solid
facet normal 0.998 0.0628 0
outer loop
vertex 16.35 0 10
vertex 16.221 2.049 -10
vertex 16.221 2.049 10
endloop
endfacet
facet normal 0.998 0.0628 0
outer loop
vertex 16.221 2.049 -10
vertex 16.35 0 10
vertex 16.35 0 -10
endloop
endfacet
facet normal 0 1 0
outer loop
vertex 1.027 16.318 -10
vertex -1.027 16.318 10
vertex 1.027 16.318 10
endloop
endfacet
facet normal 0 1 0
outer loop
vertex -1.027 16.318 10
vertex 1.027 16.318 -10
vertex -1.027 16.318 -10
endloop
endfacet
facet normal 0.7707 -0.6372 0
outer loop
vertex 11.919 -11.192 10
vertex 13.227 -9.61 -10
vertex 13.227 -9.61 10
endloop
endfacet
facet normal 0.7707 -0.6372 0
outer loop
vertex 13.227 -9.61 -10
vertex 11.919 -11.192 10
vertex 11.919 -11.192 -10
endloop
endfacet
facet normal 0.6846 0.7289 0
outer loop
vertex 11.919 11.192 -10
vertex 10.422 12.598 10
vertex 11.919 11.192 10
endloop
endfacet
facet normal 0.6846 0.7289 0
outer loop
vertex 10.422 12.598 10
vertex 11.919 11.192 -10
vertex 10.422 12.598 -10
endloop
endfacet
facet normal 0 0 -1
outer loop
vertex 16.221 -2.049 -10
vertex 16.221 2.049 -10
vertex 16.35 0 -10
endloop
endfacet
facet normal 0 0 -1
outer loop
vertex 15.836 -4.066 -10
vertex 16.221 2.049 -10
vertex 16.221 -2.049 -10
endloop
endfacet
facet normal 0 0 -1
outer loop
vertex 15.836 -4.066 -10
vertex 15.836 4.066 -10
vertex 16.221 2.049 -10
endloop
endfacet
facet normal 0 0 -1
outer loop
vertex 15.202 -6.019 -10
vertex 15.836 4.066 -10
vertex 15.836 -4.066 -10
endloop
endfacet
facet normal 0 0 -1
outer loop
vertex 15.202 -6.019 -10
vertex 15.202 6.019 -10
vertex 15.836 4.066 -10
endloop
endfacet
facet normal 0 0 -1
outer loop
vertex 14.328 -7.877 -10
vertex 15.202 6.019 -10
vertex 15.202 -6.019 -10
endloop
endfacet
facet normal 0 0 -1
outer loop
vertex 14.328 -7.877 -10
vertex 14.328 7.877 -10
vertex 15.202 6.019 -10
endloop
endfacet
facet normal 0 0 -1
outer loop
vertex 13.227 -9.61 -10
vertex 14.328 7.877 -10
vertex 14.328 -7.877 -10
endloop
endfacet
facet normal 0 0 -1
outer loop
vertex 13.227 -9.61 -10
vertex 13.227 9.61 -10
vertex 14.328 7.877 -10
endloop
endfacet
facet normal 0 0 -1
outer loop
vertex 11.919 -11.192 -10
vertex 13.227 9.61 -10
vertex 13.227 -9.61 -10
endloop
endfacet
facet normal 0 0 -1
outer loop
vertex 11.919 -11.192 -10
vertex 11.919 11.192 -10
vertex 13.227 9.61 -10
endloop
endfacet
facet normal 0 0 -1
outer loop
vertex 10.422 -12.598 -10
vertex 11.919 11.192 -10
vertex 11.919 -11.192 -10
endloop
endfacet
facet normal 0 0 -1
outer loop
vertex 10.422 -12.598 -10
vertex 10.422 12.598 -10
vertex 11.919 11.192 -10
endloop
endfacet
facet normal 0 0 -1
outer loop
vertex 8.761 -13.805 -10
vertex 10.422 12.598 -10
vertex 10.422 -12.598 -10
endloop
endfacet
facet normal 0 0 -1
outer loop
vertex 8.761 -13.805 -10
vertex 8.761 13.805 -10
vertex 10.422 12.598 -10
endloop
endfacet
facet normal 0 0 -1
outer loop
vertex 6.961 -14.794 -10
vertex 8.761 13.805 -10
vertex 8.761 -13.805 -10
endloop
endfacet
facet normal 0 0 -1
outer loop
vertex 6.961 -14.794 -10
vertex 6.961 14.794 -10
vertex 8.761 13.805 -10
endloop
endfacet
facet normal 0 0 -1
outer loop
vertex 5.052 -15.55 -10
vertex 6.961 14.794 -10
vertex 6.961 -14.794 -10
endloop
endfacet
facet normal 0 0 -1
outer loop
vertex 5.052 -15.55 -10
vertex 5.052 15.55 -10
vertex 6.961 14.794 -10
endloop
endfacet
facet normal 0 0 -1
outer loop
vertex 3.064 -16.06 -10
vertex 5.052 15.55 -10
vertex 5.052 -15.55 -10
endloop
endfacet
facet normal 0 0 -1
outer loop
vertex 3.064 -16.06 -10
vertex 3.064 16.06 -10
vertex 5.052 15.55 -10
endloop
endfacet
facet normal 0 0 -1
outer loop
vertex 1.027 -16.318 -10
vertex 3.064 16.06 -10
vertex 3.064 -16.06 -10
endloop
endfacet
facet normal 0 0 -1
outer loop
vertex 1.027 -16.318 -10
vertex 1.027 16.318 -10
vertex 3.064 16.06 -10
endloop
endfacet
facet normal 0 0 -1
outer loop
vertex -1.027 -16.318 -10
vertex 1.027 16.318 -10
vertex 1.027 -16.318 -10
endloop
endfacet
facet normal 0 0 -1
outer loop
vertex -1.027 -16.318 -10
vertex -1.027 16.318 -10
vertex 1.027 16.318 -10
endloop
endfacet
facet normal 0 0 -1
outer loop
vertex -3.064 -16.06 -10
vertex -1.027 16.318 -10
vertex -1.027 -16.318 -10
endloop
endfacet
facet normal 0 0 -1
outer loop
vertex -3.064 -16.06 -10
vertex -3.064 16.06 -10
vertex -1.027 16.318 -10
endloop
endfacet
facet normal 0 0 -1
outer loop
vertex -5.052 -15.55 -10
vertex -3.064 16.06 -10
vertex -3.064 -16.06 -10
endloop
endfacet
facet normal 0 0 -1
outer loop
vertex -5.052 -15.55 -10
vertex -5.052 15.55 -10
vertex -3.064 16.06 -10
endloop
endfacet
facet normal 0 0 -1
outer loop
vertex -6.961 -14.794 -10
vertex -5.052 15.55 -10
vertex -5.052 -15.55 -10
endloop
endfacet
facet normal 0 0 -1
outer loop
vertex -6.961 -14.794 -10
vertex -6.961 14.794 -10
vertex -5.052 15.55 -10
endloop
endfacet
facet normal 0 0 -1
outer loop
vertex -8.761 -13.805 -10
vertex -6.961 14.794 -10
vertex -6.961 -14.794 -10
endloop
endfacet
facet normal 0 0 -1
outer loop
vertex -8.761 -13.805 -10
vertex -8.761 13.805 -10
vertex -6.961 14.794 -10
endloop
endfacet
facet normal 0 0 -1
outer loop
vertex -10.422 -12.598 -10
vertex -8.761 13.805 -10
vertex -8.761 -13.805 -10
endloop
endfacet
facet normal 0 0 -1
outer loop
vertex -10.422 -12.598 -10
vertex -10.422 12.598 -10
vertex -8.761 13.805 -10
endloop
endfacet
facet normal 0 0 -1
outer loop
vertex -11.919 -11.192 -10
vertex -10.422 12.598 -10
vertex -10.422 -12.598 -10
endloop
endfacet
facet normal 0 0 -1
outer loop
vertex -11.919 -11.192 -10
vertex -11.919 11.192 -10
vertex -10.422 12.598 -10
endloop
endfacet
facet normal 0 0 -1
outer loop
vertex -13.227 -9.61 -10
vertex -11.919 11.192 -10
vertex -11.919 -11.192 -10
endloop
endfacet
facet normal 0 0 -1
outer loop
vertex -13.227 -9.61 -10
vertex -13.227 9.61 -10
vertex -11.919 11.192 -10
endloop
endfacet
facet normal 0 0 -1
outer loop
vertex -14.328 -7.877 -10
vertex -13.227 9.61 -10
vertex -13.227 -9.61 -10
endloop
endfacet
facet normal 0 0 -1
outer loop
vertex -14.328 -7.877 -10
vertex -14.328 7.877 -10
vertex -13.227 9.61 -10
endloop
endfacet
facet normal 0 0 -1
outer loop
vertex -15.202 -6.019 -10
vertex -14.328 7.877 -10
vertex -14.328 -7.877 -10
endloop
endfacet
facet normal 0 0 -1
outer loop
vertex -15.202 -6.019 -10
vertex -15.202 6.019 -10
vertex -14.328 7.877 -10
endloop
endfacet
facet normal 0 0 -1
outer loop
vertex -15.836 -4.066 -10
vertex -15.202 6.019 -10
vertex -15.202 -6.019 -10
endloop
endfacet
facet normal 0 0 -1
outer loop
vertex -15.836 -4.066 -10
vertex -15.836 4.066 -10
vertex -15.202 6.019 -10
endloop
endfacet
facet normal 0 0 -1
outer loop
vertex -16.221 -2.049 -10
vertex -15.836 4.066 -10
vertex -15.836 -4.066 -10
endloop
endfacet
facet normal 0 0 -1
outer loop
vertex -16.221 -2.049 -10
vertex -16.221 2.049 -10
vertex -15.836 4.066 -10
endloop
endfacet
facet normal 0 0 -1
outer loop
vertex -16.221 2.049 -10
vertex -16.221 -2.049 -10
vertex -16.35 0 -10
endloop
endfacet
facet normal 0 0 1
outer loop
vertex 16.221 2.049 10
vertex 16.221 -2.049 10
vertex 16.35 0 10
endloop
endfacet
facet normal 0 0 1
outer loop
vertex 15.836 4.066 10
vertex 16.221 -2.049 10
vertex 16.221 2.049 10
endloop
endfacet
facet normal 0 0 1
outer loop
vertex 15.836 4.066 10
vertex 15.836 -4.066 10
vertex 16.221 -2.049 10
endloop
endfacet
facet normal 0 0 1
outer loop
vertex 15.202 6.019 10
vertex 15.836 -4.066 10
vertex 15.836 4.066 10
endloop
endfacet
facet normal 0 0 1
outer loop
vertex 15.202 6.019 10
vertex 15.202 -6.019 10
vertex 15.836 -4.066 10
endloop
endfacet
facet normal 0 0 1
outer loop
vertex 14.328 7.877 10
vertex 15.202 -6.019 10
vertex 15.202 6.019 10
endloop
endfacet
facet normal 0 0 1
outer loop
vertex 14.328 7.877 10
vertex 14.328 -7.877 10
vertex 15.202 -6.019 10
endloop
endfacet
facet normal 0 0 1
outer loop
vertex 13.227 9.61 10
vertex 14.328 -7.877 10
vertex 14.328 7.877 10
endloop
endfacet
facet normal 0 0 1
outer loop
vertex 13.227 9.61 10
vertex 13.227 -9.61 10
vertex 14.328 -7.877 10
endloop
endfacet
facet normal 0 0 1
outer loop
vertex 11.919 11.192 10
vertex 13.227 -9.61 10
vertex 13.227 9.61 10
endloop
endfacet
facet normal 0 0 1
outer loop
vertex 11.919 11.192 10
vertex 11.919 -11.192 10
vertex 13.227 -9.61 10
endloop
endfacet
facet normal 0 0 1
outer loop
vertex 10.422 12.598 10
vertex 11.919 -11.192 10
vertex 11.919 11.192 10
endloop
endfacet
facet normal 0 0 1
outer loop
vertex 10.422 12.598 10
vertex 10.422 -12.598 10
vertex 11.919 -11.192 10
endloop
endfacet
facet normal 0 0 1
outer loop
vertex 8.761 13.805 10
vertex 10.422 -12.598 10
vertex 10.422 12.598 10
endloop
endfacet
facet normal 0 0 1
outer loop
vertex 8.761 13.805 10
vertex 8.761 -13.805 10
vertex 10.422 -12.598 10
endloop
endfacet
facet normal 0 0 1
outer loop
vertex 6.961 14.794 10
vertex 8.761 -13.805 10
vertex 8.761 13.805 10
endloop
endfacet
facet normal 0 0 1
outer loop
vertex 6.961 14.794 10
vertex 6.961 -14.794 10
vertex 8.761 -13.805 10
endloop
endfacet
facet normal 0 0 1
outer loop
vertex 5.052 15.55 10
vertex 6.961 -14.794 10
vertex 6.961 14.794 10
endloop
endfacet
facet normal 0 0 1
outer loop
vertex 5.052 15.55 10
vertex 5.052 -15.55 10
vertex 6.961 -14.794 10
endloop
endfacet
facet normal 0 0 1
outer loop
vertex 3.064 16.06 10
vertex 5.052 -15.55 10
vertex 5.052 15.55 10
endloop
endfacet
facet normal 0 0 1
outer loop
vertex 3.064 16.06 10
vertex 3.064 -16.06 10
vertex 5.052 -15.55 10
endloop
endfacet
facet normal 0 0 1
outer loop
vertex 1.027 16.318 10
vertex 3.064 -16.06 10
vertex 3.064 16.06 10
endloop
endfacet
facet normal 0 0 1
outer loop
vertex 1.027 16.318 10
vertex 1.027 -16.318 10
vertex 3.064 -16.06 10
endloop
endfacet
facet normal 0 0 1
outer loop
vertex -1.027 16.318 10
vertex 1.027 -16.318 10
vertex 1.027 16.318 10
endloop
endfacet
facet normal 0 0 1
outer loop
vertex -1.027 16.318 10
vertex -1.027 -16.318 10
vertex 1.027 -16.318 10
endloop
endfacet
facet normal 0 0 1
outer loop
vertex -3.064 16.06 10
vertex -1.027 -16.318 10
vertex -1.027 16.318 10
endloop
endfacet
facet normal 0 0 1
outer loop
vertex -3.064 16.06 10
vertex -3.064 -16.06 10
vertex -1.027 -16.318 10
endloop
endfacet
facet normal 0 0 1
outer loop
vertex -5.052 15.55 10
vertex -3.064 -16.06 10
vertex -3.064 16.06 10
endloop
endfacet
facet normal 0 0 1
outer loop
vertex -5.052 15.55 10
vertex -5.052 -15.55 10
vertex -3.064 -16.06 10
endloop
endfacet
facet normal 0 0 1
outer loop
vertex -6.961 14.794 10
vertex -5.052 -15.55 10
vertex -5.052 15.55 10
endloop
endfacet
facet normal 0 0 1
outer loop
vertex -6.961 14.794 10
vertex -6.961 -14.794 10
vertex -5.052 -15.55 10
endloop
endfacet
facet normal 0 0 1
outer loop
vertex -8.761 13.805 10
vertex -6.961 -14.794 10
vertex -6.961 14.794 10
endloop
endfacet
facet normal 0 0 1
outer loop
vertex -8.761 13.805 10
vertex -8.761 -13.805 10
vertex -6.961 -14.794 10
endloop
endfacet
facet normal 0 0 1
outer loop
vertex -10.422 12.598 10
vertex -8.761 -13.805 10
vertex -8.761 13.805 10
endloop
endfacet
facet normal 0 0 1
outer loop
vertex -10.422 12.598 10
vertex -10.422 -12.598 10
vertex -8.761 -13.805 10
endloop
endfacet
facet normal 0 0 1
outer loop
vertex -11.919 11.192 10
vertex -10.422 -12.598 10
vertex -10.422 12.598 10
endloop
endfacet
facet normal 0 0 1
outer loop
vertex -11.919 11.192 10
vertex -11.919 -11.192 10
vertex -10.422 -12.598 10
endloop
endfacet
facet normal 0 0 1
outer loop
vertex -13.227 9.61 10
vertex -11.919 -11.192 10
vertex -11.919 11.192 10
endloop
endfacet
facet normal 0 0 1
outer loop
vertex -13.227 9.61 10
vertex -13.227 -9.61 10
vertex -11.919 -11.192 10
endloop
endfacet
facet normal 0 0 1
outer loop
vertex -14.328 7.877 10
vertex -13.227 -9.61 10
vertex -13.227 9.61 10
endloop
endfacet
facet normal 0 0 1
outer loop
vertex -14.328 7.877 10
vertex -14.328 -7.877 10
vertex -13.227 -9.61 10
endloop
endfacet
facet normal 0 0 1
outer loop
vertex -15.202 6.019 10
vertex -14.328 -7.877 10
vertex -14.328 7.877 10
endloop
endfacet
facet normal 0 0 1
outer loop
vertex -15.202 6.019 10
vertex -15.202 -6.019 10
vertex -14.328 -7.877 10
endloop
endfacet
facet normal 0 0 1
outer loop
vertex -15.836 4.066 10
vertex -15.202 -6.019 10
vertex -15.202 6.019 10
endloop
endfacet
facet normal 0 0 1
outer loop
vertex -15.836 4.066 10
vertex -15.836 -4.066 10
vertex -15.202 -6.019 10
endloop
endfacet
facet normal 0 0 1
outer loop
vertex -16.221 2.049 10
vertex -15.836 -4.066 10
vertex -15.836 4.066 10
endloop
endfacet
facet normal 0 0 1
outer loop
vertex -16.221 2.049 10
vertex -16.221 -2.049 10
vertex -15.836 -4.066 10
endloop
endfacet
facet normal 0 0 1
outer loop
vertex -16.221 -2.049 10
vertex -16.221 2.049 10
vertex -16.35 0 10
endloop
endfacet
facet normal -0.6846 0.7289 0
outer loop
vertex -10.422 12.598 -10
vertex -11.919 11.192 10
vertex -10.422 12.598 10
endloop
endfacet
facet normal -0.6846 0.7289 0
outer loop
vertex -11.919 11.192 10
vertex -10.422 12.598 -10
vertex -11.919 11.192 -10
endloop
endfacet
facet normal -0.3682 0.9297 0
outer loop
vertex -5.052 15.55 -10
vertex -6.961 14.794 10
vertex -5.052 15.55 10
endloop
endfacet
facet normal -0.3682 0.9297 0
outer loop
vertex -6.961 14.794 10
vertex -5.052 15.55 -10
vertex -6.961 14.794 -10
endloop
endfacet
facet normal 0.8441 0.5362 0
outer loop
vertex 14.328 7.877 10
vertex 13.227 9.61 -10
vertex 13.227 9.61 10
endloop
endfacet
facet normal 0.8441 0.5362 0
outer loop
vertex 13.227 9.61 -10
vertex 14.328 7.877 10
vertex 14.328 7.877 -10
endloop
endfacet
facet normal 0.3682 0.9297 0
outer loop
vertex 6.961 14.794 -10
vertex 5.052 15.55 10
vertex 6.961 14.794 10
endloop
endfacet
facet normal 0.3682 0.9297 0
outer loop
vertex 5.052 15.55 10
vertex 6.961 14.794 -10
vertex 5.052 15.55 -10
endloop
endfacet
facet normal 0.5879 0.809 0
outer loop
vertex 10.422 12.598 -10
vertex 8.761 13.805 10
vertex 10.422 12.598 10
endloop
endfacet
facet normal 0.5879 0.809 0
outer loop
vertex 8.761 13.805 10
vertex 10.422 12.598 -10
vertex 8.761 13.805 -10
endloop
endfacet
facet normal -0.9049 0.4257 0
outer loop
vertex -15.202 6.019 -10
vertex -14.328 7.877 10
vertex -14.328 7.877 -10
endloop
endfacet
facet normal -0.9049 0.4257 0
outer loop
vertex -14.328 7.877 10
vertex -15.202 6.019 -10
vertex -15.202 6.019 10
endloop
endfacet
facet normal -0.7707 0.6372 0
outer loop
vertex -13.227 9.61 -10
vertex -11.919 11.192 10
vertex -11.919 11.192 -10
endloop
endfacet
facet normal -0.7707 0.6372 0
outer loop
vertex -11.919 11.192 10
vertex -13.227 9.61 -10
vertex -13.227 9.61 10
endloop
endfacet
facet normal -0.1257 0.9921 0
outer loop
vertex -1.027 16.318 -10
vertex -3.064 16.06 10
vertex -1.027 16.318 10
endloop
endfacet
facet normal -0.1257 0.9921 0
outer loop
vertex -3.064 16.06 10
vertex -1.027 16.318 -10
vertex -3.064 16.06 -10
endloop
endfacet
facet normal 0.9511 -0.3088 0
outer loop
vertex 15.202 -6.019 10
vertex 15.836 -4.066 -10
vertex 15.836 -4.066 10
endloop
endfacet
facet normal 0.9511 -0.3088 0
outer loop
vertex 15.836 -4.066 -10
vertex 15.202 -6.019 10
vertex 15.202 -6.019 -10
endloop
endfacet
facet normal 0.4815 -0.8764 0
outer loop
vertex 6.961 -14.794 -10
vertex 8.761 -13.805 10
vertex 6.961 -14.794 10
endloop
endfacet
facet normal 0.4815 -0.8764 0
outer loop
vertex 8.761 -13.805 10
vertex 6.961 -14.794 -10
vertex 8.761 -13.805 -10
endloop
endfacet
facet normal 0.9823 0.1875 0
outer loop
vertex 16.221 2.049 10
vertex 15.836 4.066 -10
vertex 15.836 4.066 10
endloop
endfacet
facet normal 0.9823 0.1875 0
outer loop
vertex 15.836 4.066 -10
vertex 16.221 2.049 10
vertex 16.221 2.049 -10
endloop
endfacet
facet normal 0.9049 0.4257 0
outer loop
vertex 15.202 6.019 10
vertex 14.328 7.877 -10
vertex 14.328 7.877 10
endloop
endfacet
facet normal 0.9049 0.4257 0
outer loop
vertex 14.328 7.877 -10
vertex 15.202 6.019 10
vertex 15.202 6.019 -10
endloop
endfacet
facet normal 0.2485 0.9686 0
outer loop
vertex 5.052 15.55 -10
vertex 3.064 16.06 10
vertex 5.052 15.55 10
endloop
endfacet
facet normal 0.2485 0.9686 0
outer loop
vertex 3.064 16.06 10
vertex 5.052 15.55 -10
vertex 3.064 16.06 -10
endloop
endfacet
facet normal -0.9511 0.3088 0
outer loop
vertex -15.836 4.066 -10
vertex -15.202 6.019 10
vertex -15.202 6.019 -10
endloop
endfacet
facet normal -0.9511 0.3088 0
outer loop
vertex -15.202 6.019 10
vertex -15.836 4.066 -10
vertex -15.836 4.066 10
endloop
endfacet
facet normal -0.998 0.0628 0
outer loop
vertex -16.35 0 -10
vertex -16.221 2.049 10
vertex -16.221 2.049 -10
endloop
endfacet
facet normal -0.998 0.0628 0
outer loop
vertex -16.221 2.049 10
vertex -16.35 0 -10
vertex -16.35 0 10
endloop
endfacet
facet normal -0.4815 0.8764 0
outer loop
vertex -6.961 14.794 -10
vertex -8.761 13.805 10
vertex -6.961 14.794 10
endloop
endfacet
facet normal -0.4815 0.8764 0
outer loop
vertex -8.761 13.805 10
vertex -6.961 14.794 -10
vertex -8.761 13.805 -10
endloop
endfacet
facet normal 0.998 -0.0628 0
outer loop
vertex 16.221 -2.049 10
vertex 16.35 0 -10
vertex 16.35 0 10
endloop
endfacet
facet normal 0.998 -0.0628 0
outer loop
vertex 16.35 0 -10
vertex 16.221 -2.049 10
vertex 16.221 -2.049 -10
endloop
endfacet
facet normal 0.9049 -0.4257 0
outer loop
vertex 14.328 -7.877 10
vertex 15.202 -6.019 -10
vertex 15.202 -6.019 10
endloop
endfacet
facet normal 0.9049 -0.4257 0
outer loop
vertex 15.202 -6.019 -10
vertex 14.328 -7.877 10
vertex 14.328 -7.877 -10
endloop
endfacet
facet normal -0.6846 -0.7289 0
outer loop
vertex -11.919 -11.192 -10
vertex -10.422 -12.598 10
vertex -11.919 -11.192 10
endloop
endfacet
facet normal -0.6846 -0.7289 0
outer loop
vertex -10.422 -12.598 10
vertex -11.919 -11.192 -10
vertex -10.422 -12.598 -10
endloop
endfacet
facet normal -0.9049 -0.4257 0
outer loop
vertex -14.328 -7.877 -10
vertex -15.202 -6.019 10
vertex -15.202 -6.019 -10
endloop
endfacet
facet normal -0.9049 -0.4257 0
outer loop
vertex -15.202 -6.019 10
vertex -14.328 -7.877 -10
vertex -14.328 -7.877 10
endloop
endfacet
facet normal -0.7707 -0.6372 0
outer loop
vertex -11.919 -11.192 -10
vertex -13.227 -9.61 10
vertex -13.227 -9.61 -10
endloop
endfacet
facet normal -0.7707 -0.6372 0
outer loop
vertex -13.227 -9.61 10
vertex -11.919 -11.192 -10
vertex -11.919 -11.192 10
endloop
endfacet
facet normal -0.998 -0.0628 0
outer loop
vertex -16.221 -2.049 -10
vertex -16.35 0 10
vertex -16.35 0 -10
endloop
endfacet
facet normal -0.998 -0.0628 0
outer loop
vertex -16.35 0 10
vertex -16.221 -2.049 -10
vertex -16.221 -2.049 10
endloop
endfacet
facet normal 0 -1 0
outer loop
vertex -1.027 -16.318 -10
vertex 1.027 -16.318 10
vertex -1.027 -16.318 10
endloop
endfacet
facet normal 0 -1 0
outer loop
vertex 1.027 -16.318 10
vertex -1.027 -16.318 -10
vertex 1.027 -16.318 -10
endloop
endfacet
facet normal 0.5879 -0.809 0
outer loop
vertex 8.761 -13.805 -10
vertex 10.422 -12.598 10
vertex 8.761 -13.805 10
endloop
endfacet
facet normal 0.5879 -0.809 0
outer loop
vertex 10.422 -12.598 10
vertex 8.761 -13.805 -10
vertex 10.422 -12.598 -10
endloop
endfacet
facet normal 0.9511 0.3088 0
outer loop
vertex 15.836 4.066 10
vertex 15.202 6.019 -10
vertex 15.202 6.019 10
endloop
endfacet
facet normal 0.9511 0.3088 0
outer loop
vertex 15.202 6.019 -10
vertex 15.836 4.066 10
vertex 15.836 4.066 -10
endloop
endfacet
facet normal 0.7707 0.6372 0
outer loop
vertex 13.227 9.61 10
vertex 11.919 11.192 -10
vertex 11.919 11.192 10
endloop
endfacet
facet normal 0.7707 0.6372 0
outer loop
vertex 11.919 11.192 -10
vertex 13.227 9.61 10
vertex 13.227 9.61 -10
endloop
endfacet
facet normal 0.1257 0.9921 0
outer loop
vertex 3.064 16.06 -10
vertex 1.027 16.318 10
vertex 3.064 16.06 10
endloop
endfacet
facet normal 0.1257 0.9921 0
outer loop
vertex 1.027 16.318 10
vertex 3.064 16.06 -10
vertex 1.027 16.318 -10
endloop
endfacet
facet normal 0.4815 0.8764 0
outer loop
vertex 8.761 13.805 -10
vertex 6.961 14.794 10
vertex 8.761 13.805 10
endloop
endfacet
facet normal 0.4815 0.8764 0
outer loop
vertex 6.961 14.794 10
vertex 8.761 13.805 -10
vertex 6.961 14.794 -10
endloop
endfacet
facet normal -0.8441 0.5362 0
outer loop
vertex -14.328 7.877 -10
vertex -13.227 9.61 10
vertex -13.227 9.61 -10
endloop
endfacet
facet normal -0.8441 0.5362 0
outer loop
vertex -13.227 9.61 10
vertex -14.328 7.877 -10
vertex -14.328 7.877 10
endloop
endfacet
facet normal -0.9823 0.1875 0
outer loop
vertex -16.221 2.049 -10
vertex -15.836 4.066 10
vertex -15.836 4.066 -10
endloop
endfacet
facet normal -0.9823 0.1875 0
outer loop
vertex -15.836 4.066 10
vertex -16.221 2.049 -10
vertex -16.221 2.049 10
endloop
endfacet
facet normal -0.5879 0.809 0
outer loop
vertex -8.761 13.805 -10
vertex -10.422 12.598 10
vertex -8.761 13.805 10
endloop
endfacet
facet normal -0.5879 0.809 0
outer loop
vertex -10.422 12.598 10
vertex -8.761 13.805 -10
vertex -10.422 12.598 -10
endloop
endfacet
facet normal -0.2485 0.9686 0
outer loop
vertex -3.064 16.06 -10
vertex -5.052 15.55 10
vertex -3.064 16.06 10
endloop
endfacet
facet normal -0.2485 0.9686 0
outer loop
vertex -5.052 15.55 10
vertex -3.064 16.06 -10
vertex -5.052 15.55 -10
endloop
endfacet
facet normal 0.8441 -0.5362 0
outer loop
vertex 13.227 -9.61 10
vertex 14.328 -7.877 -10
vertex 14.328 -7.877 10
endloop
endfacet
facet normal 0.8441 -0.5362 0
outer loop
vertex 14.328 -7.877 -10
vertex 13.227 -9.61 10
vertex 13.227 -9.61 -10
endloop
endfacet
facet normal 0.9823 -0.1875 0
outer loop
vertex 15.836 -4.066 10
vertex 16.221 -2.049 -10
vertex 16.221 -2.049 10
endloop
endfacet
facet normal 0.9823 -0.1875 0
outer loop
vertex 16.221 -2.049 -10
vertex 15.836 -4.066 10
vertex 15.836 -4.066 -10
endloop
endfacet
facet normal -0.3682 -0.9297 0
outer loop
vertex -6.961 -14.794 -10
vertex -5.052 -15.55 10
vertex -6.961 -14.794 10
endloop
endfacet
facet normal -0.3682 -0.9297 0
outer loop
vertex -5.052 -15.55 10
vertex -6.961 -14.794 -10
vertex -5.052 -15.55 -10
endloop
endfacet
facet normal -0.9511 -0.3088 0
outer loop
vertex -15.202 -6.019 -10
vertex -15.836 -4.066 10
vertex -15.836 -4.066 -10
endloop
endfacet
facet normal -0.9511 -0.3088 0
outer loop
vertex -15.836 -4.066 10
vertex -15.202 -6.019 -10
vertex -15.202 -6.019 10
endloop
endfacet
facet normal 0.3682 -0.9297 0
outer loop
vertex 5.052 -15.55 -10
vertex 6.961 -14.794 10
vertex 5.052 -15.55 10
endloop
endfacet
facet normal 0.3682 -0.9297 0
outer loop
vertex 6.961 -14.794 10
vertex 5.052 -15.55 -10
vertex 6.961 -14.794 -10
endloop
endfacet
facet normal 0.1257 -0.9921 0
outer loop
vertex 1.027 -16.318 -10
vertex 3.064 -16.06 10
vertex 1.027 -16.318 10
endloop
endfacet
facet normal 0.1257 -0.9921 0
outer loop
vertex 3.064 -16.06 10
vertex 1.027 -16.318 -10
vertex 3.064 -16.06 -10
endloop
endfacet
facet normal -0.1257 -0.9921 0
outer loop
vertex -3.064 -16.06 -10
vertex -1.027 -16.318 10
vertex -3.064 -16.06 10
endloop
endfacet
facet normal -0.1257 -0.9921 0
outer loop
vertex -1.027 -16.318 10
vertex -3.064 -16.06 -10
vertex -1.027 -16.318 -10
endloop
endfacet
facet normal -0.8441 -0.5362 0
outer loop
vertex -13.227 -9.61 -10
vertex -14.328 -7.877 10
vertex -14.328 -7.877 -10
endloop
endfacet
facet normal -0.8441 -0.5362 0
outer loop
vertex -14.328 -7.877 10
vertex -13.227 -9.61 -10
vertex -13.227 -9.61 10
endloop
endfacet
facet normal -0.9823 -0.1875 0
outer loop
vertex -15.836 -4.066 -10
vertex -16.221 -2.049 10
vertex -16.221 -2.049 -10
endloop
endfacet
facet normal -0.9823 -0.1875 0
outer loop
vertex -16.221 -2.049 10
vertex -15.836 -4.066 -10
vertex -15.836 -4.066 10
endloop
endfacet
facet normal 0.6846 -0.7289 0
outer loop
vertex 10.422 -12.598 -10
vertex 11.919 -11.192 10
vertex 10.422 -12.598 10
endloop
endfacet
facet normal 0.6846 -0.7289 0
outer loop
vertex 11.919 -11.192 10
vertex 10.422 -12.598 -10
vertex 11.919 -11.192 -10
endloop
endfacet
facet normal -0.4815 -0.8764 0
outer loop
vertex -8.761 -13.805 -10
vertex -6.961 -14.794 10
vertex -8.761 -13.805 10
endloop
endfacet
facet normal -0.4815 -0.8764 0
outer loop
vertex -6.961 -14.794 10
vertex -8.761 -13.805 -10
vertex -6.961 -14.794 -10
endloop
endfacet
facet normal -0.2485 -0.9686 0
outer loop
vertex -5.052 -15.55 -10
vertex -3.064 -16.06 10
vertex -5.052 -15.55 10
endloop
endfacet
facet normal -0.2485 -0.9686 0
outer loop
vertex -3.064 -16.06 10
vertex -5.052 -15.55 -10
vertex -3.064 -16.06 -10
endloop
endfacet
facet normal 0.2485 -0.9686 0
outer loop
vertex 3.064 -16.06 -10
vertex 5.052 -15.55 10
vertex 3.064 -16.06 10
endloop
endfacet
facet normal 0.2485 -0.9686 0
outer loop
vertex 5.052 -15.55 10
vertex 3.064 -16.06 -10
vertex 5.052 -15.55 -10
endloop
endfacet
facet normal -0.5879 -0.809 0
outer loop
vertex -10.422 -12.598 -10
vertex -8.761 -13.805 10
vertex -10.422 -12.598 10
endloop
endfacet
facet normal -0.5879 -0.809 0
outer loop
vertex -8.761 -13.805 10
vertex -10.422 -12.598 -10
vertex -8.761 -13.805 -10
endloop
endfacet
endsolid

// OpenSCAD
$fn = 50;


difference() {
	union() {
		translate(v = [0, 0, -10.0000000000]) {
			cylinder(h = 20, r = 16.3500000000);
		}
	}
	union() {
		translate(v = [0, 0, -100.0000000000]) {
			cylinder(h = 200, r = 0);
		}
	}
}
